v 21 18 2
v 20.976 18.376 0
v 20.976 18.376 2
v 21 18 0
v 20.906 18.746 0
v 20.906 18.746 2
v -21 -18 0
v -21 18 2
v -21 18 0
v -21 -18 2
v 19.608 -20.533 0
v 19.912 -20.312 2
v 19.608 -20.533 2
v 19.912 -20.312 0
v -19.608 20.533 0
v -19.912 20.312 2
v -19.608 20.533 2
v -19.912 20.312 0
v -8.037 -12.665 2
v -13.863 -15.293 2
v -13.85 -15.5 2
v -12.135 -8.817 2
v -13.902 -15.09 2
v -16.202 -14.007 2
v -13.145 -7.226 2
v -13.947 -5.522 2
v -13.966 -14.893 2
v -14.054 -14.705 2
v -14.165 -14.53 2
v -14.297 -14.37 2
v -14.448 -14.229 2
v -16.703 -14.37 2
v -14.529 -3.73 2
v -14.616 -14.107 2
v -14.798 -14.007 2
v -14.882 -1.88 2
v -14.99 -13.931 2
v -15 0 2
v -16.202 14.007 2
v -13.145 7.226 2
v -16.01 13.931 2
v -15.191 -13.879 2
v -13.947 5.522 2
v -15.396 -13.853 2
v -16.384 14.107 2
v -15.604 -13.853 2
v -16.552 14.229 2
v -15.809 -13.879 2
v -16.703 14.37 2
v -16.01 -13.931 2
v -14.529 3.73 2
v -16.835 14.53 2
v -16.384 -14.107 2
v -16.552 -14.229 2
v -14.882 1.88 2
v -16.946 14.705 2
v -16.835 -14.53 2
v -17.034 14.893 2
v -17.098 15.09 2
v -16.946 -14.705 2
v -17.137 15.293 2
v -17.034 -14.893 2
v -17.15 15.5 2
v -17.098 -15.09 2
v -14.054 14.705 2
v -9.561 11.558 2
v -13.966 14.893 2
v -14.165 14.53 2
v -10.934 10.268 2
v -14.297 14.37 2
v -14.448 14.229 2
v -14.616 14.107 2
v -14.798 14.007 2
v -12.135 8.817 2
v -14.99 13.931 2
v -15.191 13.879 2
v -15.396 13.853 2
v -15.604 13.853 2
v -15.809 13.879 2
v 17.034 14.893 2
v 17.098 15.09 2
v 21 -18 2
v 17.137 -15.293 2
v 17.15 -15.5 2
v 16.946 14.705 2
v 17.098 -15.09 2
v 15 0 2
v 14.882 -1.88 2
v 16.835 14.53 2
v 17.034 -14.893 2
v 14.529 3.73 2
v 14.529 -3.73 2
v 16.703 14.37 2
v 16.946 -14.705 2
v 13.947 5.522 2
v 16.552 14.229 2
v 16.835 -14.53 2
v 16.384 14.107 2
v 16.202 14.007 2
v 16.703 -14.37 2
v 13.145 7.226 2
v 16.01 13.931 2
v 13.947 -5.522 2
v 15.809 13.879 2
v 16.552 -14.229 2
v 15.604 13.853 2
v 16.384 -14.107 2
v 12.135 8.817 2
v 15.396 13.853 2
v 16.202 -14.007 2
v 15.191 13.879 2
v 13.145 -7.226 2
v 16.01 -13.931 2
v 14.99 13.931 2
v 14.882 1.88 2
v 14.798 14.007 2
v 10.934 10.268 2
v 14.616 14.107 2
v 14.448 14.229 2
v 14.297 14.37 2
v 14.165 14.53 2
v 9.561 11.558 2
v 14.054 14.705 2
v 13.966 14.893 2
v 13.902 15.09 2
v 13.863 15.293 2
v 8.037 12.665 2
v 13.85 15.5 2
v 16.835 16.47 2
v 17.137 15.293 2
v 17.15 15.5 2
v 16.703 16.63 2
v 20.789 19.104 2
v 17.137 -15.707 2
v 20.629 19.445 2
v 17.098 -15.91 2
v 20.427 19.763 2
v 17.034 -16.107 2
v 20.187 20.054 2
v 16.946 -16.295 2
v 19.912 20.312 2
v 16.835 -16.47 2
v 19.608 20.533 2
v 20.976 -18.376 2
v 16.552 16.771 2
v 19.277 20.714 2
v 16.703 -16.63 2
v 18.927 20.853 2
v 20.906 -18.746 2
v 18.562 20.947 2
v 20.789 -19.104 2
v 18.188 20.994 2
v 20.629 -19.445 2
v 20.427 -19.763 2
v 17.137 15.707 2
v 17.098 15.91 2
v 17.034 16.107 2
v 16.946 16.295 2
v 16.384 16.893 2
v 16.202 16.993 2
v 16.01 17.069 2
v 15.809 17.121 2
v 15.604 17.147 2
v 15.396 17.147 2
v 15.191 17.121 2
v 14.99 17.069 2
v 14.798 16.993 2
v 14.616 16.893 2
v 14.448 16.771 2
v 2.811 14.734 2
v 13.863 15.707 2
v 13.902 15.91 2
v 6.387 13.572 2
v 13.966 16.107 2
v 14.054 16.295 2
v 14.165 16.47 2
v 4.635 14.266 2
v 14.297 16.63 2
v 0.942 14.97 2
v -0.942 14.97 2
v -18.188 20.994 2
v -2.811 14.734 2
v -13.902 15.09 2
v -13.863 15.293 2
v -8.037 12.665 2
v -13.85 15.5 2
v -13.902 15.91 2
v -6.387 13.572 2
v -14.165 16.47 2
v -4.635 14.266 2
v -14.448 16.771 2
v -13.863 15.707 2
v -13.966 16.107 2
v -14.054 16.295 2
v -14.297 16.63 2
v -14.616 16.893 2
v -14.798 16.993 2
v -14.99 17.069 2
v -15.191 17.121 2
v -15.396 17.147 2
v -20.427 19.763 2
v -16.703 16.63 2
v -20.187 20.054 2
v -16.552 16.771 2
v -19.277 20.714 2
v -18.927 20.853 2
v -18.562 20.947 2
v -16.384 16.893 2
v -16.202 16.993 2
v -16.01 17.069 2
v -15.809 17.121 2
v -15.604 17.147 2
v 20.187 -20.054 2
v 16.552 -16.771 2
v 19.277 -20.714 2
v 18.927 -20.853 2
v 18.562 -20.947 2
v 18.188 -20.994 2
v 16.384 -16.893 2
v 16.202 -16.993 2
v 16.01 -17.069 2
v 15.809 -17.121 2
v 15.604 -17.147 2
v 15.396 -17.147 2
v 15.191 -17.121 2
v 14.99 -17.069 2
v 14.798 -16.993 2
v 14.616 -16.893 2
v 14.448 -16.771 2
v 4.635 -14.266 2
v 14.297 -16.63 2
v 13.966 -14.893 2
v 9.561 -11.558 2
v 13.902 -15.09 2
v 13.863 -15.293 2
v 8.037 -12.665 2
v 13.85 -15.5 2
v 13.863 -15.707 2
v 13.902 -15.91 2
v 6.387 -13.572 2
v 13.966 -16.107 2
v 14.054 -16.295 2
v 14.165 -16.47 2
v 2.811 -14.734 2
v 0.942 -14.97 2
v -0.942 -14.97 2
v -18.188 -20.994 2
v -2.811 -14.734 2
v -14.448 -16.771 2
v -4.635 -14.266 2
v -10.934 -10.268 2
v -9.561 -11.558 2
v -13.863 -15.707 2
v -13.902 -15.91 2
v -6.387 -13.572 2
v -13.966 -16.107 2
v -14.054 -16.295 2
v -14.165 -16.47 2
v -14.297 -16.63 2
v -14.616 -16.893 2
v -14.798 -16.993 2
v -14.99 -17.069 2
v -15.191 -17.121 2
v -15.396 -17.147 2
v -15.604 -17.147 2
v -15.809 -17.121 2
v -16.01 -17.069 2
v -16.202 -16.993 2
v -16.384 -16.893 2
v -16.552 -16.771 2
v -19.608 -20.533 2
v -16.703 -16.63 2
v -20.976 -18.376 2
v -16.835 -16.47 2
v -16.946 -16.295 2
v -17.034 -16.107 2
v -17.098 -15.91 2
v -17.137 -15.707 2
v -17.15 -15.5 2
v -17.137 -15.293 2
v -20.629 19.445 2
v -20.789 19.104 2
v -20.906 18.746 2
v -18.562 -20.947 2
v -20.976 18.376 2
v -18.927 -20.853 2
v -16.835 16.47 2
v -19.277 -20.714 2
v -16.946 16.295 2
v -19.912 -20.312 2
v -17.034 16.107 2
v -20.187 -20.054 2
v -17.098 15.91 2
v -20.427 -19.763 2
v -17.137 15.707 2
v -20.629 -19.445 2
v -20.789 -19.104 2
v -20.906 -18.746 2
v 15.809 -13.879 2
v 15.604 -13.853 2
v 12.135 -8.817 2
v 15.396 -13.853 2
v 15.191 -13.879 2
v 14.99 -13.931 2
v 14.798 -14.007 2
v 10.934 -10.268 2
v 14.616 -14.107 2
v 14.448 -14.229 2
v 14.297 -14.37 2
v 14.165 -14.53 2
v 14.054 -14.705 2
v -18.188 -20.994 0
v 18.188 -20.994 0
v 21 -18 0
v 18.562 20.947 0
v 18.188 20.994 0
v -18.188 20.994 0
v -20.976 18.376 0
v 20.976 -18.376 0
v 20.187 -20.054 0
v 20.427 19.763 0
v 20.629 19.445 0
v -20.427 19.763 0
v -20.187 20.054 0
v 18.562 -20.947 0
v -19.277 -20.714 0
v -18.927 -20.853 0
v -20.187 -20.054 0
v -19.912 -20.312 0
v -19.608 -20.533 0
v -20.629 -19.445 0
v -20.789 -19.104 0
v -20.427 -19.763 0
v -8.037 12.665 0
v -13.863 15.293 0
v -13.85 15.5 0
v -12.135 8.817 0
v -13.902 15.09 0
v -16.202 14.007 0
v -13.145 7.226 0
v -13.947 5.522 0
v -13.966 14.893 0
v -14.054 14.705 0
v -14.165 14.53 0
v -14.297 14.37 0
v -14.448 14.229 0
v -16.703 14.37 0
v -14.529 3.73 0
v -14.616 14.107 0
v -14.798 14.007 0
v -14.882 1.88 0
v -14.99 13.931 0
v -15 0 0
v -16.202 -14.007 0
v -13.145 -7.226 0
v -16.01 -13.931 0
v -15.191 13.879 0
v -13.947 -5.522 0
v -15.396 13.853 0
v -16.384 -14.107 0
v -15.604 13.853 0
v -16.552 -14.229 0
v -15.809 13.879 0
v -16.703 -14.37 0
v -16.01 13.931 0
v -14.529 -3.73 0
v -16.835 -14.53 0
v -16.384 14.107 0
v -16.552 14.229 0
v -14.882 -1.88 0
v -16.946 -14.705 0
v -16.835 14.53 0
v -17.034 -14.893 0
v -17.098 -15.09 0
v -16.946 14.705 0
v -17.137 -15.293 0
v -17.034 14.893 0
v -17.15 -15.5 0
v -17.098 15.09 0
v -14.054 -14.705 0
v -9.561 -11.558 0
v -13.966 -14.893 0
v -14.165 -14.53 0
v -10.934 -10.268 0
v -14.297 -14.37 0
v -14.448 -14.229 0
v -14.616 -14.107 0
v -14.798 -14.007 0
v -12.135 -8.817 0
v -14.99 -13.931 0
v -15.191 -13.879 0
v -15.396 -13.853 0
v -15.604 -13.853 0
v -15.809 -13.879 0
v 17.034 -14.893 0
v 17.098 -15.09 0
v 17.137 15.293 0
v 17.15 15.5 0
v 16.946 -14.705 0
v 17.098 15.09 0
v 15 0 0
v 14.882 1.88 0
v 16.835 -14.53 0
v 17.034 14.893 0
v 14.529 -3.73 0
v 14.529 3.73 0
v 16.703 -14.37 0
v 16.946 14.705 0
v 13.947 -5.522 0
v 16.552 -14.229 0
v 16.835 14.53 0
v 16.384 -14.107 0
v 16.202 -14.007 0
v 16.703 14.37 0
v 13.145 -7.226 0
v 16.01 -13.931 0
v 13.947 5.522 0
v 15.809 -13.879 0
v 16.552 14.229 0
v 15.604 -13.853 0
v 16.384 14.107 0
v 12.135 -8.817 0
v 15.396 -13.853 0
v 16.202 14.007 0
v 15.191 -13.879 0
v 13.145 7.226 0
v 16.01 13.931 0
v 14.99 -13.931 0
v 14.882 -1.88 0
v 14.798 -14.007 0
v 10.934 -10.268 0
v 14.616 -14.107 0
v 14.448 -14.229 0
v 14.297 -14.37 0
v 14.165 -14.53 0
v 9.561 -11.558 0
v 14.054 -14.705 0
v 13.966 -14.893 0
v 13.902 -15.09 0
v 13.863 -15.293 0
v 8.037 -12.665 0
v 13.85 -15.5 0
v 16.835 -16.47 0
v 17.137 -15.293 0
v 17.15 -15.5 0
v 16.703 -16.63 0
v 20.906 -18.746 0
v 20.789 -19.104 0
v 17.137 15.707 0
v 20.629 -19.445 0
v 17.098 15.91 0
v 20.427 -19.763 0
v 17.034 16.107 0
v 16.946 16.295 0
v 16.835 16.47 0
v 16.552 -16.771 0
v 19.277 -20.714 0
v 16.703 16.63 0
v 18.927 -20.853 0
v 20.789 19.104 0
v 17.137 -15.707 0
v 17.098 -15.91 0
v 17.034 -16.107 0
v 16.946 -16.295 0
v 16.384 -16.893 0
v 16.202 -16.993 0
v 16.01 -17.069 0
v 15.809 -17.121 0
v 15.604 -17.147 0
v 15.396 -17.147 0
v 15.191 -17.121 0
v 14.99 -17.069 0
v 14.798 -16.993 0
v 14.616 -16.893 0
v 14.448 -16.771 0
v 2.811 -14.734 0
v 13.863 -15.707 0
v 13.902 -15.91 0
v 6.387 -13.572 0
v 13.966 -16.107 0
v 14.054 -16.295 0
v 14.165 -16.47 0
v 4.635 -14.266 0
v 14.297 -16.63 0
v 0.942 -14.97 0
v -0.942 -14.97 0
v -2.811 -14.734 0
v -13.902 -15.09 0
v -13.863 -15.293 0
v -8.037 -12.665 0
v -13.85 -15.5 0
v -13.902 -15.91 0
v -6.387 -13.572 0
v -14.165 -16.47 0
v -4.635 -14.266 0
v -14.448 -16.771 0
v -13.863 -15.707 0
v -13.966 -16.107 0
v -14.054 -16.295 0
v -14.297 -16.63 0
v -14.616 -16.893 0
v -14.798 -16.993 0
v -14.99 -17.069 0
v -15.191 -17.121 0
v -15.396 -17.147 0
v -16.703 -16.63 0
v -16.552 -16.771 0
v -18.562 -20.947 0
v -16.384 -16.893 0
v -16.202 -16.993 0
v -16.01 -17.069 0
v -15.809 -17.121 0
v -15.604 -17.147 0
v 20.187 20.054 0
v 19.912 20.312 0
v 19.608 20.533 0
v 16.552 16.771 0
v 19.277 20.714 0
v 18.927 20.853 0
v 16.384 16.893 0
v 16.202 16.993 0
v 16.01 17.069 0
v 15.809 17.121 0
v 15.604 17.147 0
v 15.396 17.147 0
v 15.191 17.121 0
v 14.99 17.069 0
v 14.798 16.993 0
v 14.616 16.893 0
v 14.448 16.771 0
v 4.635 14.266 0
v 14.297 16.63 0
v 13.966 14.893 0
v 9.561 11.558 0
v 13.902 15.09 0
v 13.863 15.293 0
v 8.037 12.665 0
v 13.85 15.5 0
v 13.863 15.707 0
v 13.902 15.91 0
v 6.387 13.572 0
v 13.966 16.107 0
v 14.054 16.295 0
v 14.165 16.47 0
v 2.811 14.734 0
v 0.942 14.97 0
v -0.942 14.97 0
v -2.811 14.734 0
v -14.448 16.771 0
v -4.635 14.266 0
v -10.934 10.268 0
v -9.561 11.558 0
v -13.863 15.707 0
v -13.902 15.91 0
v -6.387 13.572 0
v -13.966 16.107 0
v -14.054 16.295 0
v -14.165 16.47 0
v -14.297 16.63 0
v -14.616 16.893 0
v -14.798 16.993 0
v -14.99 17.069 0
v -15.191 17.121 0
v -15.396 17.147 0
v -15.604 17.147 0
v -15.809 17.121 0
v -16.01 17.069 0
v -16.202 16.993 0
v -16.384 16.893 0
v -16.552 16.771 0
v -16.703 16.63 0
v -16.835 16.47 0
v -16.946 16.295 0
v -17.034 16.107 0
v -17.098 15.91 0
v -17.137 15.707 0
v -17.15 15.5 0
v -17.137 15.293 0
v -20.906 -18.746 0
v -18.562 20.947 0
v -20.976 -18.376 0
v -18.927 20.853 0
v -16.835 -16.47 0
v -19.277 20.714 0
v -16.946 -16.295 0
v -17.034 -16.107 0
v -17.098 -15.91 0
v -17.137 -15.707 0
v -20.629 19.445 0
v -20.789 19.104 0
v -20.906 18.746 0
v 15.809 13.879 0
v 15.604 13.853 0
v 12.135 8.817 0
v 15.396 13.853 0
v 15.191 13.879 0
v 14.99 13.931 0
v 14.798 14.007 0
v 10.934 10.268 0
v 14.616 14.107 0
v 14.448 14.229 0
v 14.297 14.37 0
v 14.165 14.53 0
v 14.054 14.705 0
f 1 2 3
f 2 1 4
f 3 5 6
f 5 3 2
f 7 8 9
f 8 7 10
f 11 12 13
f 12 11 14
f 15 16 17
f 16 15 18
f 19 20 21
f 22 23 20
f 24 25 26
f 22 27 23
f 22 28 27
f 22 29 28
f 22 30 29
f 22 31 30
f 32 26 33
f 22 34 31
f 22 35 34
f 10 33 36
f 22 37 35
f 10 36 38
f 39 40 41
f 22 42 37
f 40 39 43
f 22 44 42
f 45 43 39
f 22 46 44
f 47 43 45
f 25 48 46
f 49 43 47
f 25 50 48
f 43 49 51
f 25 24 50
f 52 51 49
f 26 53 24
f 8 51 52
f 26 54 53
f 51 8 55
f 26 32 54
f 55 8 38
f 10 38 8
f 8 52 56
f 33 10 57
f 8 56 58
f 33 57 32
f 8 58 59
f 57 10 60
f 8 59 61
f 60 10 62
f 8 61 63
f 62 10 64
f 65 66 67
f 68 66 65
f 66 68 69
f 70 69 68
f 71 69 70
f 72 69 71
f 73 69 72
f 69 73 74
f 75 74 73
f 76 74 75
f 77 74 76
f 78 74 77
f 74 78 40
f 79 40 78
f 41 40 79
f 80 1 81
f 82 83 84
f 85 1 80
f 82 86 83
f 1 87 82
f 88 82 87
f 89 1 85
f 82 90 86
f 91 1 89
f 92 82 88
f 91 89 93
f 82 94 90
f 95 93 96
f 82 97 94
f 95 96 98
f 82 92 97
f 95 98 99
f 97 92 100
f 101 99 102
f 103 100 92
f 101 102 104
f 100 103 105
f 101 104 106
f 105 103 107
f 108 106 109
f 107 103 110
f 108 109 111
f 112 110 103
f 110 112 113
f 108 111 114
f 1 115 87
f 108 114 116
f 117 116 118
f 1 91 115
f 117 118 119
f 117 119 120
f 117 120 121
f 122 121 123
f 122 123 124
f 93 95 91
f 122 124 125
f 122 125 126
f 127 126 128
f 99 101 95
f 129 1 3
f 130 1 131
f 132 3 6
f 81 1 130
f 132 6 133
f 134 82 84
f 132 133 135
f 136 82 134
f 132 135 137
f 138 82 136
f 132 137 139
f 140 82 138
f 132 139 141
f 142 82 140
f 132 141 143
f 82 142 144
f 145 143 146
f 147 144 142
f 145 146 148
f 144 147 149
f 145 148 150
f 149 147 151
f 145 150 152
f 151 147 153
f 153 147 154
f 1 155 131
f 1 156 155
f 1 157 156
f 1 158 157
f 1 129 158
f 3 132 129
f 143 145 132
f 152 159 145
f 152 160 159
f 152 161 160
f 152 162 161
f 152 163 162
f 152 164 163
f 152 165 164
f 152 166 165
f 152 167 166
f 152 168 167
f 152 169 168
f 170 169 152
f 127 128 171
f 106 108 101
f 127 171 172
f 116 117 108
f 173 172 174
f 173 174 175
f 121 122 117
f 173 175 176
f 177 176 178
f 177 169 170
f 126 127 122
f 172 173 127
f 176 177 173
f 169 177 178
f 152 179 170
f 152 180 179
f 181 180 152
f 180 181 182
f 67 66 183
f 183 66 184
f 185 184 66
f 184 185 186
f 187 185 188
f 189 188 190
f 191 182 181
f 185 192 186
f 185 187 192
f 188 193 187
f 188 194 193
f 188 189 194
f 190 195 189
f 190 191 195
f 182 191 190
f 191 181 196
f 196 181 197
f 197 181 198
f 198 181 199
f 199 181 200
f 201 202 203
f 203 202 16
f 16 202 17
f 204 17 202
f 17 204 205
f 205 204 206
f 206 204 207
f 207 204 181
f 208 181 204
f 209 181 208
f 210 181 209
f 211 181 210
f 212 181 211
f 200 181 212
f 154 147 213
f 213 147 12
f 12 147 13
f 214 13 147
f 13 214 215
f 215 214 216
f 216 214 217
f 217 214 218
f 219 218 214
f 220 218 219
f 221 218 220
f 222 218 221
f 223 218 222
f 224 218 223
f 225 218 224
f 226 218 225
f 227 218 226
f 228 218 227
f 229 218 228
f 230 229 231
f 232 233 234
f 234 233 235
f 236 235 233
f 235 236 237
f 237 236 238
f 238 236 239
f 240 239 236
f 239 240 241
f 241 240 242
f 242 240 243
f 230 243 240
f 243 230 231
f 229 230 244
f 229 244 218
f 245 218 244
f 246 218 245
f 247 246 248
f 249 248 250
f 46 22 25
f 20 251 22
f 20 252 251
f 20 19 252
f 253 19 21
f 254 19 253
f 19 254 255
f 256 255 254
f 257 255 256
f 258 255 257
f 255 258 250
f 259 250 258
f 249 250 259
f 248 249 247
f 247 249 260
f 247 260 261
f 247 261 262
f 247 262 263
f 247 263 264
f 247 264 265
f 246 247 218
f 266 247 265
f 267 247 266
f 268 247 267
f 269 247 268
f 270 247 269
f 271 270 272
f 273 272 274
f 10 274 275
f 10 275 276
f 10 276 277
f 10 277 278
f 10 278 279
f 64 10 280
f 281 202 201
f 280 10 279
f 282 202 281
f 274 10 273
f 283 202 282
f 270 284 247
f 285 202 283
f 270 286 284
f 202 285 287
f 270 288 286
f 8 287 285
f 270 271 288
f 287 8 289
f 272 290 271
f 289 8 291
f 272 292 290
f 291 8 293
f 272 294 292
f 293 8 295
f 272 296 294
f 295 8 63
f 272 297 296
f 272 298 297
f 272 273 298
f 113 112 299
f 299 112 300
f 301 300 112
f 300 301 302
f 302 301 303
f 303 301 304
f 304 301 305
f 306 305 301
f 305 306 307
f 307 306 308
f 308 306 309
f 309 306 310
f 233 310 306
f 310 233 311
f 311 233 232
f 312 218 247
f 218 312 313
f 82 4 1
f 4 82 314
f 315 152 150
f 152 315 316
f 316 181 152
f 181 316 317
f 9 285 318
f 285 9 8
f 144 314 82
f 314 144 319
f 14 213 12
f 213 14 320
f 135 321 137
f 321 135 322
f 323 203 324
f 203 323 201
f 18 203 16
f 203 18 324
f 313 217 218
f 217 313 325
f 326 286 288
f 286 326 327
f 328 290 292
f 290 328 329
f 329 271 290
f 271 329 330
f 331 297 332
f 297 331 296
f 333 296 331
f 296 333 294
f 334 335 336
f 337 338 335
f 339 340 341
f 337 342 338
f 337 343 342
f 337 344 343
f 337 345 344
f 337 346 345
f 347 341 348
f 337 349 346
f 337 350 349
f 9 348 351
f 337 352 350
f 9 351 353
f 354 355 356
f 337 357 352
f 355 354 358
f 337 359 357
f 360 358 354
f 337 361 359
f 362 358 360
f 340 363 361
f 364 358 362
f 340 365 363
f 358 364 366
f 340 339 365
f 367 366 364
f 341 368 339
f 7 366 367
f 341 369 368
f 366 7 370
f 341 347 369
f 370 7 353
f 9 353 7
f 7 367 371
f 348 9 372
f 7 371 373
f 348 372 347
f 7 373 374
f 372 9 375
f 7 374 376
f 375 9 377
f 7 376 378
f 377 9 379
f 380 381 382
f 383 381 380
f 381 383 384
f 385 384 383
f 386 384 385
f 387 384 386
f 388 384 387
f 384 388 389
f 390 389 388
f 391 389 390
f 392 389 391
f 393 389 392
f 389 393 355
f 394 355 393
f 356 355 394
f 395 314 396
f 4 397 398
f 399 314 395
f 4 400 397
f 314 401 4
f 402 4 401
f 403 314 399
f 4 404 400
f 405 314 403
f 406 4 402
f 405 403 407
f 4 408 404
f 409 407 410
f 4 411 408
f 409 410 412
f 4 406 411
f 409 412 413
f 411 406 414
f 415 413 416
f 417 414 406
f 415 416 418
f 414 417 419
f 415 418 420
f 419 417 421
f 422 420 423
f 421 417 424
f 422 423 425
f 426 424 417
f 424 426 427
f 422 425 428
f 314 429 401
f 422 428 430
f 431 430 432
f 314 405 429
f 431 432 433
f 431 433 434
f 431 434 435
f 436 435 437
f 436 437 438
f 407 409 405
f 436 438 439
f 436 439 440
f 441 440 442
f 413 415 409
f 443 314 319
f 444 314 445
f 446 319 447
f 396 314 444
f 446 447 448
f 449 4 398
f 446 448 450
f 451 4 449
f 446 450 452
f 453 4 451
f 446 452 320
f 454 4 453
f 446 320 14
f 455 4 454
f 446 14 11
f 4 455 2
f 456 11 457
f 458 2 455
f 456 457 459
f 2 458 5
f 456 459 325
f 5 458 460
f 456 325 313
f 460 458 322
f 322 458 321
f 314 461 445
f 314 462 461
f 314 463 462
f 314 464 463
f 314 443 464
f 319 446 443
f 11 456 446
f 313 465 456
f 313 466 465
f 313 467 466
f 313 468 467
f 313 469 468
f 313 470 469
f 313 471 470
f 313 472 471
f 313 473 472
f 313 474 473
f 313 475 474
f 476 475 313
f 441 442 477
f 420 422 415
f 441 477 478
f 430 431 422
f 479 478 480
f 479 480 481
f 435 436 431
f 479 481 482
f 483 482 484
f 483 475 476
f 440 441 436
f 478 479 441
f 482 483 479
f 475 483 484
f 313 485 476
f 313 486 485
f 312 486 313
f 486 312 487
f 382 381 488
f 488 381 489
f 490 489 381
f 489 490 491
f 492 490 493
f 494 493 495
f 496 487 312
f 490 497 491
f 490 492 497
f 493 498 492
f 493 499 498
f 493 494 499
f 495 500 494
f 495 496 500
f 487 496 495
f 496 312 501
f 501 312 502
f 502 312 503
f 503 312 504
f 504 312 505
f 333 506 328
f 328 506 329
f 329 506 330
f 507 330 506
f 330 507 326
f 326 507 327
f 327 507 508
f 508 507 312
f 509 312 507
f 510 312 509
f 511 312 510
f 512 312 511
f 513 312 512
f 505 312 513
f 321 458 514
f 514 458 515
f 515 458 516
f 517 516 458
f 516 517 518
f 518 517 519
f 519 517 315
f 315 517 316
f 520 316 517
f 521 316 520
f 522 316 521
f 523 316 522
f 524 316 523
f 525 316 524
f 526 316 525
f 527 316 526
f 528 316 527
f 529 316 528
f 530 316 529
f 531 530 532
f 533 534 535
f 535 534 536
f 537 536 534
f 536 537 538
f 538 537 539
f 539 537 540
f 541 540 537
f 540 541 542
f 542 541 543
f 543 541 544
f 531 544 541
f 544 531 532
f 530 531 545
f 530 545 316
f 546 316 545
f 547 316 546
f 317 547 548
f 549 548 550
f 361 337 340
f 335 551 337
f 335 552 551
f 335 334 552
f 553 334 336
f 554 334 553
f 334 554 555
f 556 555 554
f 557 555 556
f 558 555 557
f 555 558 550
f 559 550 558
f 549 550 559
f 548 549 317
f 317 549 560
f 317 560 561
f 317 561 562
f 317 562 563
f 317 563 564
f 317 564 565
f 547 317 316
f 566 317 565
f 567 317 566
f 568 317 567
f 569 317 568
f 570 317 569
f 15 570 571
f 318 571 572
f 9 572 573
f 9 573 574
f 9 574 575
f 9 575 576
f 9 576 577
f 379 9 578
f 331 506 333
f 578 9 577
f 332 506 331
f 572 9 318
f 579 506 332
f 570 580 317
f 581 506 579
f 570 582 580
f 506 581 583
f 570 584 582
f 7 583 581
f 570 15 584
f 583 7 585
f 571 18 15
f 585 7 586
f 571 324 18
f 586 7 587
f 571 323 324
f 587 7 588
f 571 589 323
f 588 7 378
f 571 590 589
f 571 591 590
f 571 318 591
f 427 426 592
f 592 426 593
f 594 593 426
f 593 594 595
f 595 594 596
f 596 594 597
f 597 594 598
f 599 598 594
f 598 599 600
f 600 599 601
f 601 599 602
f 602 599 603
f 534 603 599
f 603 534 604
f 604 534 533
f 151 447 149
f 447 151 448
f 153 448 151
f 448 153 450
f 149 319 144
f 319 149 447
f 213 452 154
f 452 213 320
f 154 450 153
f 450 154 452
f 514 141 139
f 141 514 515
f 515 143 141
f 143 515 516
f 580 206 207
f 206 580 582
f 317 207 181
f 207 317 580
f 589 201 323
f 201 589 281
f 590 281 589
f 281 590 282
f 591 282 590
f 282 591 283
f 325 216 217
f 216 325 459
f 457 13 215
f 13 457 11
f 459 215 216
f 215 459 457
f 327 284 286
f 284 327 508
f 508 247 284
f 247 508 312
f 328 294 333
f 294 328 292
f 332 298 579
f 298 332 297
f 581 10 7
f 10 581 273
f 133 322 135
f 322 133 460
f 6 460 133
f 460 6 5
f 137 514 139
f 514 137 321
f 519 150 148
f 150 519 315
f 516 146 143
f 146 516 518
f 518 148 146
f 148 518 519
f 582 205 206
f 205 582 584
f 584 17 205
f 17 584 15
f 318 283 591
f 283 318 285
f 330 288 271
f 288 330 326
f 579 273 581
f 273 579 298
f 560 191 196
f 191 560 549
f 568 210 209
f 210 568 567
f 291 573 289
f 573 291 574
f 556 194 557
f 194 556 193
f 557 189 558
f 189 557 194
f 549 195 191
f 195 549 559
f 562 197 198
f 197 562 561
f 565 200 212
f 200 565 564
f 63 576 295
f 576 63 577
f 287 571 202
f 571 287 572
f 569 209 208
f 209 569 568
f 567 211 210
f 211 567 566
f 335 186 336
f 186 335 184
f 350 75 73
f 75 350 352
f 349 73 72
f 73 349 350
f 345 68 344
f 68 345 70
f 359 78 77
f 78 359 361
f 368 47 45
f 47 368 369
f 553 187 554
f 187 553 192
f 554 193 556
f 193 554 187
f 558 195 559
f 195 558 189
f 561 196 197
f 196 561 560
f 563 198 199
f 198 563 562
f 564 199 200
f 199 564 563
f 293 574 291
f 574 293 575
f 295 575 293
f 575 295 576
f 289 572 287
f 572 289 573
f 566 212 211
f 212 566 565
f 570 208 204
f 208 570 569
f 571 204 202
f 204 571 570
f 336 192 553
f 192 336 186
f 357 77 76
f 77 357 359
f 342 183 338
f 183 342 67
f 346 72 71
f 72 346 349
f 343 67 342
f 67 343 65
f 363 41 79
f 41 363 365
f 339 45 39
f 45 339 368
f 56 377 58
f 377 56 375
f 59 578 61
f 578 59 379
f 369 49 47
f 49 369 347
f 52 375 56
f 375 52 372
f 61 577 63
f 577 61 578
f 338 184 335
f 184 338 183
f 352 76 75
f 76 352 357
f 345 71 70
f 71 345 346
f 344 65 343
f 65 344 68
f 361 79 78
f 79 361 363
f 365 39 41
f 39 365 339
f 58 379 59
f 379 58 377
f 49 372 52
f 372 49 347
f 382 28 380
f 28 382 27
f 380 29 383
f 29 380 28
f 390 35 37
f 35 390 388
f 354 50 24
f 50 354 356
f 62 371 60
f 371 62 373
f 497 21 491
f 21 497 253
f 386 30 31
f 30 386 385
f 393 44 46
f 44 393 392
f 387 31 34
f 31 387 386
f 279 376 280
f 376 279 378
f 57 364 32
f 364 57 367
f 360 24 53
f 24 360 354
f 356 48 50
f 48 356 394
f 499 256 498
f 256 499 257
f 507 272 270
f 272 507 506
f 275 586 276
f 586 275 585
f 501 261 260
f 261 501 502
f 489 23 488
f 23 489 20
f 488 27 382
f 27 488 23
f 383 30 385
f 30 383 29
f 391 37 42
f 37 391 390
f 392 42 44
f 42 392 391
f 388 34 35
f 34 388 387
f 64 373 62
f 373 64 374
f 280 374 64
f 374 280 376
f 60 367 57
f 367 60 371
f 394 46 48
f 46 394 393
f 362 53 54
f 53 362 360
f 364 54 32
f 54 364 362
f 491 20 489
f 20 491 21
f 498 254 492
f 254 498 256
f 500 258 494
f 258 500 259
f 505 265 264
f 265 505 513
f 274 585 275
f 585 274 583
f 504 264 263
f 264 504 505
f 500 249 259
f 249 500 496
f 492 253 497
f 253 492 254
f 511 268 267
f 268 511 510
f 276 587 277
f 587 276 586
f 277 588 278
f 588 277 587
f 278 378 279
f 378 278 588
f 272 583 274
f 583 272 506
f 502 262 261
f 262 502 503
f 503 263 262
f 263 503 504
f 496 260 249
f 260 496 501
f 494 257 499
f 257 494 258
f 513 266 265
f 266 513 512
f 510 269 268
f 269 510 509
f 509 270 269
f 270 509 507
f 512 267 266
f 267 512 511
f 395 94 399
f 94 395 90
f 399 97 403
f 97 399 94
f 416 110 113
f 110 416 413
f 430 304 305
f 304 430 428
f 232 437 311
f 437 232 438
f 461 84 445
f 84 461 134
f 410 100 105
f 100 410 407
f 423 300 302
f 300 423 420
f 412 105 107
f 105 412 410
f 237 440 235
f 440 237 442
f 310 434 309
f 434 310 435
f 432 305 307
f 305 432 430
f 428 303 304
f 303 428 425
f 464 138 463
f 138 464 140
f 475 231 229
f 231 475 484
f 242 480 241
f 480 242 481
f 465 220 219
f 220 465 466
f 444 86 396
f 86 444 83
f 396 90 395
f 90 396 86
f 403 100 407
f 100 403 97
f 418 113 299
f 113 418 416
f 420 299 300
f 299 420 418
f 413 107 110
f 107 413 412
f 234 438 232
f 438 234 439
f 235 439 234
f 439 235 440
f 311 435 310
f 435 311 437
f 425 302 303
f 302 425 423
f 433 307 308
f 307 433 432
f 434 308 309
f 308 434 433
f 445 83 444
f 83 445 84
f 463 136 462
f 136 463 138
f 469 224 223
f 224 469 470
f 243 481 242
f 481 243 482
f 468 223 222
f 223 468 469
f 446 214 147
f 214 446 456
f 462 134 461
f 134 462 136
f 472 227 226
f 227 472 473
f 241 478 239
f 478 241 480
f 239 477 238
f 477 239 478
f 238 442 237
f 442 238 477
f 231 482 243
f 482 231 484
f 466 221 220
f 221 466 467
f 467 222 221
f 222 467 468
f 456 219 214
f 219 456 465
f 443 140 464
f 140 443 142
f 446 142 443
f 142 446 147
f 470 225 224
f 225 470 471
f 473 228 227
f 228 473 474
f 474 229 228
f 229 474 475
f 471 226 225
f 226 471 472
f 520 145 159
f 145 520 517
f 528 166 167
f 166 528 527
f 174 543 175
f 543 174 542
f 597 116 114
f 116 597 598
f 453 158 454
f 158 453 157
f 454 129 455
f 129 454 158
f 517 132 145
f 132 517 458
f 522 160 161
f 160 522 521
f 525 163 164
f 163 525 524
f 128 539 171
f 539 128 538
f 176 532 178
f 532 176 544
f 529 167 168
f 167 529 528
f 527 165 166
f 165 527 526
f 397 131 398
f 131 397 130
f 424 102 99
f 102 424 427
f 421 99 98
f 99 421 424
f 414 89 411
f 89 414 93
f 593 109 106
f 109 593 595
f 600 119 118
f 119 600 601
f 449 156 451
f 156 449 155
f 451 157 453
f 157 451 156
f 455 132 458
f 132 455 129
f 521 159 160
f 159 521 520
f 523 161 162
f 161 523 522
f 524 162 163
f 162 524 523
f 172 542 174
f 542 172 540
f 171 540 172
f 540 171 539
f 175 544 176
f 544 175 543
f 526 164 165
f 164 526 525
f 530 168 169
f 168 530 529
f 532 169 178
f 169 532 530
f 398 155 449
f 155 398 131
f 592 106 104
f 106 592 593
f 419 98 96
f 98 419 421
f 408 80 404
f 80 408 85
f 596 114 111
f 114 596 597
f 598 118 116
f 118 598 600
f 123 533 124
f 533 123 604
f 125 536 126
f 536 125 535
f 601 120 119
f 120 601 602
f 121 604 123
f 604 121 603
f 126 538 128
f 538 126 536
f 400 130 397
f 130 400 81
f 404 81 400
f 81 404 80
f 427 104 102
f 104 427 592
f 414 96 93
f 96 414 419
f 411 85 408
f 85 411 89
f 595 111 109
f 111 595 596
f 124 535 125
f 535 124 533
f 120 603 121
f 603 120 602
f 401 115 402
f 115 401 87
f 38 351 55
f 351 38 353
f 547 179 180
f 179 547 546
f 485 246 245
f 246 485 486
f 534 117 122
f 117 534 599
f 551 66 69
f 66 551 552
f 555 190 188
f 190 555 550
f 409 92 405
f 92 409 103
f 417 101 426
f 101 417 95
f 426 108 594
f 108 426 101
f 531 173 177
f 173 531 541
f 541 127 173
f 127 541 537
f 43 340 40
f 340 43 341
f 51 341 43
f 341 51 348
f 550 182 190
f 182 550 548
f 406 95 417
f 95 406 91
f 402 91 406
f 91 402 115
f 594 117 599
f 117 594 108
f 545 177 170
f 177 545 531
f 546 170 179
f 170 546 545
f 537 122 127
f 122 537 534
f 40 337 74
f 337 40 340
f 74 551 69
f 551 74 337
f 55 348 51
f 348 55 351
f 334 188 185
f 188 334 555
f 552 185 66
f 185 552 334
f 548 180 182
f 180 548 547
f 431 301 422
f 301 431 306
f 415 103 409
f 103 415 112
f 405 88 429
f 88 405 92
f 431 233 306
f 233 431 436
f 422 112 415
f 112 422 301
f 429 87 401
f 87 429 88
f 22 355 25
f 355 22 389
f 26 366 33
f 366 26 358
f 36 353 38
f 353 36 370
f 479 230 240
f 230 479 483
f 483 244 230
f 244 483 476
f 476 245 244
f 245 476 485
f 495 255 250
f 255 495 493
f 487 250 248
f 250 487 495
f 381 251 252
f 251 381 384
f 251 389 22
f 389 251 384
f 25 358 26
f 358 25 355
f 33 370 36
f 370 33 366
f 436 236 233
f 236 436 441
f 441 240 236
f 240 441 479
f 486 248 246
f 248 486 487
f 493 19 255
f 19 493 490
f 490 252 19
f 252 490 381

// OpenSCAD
side = 42;
corner_d = 6;
corner = side - corner_d;
h = 2;

$fn=50;

difference() {
    hull() {
        translate([corner/2, corner/2,0]) cylinder(d=6,h=h);
        translate([-corner/2, corner/2,0]) cylinder(d=6,h=h);
        translate([corner/2, -corner/2,0]) cylinder(d=6,h=h);
        translate([-corner/2, -corner/2,0]) cylinder(d=6,h=h);
    }
    
    translate([-31/2, 31/2,-0.1]) cylinder(d=3.3,h=h+1);
    translate([-31/2, -31/2,-0.1]) cylinder(d=3.3,h=h+1);
    translate([31/2, -31/2,-0.1]) cylinder(d=3.3,h=h+1);
    translate([31/2, 31/2,-0.1]) cylinder(d=3.3,h=h+1);
    
    translate([0,0,-0.1]) cylinder(d=30, h=h+1);
}
